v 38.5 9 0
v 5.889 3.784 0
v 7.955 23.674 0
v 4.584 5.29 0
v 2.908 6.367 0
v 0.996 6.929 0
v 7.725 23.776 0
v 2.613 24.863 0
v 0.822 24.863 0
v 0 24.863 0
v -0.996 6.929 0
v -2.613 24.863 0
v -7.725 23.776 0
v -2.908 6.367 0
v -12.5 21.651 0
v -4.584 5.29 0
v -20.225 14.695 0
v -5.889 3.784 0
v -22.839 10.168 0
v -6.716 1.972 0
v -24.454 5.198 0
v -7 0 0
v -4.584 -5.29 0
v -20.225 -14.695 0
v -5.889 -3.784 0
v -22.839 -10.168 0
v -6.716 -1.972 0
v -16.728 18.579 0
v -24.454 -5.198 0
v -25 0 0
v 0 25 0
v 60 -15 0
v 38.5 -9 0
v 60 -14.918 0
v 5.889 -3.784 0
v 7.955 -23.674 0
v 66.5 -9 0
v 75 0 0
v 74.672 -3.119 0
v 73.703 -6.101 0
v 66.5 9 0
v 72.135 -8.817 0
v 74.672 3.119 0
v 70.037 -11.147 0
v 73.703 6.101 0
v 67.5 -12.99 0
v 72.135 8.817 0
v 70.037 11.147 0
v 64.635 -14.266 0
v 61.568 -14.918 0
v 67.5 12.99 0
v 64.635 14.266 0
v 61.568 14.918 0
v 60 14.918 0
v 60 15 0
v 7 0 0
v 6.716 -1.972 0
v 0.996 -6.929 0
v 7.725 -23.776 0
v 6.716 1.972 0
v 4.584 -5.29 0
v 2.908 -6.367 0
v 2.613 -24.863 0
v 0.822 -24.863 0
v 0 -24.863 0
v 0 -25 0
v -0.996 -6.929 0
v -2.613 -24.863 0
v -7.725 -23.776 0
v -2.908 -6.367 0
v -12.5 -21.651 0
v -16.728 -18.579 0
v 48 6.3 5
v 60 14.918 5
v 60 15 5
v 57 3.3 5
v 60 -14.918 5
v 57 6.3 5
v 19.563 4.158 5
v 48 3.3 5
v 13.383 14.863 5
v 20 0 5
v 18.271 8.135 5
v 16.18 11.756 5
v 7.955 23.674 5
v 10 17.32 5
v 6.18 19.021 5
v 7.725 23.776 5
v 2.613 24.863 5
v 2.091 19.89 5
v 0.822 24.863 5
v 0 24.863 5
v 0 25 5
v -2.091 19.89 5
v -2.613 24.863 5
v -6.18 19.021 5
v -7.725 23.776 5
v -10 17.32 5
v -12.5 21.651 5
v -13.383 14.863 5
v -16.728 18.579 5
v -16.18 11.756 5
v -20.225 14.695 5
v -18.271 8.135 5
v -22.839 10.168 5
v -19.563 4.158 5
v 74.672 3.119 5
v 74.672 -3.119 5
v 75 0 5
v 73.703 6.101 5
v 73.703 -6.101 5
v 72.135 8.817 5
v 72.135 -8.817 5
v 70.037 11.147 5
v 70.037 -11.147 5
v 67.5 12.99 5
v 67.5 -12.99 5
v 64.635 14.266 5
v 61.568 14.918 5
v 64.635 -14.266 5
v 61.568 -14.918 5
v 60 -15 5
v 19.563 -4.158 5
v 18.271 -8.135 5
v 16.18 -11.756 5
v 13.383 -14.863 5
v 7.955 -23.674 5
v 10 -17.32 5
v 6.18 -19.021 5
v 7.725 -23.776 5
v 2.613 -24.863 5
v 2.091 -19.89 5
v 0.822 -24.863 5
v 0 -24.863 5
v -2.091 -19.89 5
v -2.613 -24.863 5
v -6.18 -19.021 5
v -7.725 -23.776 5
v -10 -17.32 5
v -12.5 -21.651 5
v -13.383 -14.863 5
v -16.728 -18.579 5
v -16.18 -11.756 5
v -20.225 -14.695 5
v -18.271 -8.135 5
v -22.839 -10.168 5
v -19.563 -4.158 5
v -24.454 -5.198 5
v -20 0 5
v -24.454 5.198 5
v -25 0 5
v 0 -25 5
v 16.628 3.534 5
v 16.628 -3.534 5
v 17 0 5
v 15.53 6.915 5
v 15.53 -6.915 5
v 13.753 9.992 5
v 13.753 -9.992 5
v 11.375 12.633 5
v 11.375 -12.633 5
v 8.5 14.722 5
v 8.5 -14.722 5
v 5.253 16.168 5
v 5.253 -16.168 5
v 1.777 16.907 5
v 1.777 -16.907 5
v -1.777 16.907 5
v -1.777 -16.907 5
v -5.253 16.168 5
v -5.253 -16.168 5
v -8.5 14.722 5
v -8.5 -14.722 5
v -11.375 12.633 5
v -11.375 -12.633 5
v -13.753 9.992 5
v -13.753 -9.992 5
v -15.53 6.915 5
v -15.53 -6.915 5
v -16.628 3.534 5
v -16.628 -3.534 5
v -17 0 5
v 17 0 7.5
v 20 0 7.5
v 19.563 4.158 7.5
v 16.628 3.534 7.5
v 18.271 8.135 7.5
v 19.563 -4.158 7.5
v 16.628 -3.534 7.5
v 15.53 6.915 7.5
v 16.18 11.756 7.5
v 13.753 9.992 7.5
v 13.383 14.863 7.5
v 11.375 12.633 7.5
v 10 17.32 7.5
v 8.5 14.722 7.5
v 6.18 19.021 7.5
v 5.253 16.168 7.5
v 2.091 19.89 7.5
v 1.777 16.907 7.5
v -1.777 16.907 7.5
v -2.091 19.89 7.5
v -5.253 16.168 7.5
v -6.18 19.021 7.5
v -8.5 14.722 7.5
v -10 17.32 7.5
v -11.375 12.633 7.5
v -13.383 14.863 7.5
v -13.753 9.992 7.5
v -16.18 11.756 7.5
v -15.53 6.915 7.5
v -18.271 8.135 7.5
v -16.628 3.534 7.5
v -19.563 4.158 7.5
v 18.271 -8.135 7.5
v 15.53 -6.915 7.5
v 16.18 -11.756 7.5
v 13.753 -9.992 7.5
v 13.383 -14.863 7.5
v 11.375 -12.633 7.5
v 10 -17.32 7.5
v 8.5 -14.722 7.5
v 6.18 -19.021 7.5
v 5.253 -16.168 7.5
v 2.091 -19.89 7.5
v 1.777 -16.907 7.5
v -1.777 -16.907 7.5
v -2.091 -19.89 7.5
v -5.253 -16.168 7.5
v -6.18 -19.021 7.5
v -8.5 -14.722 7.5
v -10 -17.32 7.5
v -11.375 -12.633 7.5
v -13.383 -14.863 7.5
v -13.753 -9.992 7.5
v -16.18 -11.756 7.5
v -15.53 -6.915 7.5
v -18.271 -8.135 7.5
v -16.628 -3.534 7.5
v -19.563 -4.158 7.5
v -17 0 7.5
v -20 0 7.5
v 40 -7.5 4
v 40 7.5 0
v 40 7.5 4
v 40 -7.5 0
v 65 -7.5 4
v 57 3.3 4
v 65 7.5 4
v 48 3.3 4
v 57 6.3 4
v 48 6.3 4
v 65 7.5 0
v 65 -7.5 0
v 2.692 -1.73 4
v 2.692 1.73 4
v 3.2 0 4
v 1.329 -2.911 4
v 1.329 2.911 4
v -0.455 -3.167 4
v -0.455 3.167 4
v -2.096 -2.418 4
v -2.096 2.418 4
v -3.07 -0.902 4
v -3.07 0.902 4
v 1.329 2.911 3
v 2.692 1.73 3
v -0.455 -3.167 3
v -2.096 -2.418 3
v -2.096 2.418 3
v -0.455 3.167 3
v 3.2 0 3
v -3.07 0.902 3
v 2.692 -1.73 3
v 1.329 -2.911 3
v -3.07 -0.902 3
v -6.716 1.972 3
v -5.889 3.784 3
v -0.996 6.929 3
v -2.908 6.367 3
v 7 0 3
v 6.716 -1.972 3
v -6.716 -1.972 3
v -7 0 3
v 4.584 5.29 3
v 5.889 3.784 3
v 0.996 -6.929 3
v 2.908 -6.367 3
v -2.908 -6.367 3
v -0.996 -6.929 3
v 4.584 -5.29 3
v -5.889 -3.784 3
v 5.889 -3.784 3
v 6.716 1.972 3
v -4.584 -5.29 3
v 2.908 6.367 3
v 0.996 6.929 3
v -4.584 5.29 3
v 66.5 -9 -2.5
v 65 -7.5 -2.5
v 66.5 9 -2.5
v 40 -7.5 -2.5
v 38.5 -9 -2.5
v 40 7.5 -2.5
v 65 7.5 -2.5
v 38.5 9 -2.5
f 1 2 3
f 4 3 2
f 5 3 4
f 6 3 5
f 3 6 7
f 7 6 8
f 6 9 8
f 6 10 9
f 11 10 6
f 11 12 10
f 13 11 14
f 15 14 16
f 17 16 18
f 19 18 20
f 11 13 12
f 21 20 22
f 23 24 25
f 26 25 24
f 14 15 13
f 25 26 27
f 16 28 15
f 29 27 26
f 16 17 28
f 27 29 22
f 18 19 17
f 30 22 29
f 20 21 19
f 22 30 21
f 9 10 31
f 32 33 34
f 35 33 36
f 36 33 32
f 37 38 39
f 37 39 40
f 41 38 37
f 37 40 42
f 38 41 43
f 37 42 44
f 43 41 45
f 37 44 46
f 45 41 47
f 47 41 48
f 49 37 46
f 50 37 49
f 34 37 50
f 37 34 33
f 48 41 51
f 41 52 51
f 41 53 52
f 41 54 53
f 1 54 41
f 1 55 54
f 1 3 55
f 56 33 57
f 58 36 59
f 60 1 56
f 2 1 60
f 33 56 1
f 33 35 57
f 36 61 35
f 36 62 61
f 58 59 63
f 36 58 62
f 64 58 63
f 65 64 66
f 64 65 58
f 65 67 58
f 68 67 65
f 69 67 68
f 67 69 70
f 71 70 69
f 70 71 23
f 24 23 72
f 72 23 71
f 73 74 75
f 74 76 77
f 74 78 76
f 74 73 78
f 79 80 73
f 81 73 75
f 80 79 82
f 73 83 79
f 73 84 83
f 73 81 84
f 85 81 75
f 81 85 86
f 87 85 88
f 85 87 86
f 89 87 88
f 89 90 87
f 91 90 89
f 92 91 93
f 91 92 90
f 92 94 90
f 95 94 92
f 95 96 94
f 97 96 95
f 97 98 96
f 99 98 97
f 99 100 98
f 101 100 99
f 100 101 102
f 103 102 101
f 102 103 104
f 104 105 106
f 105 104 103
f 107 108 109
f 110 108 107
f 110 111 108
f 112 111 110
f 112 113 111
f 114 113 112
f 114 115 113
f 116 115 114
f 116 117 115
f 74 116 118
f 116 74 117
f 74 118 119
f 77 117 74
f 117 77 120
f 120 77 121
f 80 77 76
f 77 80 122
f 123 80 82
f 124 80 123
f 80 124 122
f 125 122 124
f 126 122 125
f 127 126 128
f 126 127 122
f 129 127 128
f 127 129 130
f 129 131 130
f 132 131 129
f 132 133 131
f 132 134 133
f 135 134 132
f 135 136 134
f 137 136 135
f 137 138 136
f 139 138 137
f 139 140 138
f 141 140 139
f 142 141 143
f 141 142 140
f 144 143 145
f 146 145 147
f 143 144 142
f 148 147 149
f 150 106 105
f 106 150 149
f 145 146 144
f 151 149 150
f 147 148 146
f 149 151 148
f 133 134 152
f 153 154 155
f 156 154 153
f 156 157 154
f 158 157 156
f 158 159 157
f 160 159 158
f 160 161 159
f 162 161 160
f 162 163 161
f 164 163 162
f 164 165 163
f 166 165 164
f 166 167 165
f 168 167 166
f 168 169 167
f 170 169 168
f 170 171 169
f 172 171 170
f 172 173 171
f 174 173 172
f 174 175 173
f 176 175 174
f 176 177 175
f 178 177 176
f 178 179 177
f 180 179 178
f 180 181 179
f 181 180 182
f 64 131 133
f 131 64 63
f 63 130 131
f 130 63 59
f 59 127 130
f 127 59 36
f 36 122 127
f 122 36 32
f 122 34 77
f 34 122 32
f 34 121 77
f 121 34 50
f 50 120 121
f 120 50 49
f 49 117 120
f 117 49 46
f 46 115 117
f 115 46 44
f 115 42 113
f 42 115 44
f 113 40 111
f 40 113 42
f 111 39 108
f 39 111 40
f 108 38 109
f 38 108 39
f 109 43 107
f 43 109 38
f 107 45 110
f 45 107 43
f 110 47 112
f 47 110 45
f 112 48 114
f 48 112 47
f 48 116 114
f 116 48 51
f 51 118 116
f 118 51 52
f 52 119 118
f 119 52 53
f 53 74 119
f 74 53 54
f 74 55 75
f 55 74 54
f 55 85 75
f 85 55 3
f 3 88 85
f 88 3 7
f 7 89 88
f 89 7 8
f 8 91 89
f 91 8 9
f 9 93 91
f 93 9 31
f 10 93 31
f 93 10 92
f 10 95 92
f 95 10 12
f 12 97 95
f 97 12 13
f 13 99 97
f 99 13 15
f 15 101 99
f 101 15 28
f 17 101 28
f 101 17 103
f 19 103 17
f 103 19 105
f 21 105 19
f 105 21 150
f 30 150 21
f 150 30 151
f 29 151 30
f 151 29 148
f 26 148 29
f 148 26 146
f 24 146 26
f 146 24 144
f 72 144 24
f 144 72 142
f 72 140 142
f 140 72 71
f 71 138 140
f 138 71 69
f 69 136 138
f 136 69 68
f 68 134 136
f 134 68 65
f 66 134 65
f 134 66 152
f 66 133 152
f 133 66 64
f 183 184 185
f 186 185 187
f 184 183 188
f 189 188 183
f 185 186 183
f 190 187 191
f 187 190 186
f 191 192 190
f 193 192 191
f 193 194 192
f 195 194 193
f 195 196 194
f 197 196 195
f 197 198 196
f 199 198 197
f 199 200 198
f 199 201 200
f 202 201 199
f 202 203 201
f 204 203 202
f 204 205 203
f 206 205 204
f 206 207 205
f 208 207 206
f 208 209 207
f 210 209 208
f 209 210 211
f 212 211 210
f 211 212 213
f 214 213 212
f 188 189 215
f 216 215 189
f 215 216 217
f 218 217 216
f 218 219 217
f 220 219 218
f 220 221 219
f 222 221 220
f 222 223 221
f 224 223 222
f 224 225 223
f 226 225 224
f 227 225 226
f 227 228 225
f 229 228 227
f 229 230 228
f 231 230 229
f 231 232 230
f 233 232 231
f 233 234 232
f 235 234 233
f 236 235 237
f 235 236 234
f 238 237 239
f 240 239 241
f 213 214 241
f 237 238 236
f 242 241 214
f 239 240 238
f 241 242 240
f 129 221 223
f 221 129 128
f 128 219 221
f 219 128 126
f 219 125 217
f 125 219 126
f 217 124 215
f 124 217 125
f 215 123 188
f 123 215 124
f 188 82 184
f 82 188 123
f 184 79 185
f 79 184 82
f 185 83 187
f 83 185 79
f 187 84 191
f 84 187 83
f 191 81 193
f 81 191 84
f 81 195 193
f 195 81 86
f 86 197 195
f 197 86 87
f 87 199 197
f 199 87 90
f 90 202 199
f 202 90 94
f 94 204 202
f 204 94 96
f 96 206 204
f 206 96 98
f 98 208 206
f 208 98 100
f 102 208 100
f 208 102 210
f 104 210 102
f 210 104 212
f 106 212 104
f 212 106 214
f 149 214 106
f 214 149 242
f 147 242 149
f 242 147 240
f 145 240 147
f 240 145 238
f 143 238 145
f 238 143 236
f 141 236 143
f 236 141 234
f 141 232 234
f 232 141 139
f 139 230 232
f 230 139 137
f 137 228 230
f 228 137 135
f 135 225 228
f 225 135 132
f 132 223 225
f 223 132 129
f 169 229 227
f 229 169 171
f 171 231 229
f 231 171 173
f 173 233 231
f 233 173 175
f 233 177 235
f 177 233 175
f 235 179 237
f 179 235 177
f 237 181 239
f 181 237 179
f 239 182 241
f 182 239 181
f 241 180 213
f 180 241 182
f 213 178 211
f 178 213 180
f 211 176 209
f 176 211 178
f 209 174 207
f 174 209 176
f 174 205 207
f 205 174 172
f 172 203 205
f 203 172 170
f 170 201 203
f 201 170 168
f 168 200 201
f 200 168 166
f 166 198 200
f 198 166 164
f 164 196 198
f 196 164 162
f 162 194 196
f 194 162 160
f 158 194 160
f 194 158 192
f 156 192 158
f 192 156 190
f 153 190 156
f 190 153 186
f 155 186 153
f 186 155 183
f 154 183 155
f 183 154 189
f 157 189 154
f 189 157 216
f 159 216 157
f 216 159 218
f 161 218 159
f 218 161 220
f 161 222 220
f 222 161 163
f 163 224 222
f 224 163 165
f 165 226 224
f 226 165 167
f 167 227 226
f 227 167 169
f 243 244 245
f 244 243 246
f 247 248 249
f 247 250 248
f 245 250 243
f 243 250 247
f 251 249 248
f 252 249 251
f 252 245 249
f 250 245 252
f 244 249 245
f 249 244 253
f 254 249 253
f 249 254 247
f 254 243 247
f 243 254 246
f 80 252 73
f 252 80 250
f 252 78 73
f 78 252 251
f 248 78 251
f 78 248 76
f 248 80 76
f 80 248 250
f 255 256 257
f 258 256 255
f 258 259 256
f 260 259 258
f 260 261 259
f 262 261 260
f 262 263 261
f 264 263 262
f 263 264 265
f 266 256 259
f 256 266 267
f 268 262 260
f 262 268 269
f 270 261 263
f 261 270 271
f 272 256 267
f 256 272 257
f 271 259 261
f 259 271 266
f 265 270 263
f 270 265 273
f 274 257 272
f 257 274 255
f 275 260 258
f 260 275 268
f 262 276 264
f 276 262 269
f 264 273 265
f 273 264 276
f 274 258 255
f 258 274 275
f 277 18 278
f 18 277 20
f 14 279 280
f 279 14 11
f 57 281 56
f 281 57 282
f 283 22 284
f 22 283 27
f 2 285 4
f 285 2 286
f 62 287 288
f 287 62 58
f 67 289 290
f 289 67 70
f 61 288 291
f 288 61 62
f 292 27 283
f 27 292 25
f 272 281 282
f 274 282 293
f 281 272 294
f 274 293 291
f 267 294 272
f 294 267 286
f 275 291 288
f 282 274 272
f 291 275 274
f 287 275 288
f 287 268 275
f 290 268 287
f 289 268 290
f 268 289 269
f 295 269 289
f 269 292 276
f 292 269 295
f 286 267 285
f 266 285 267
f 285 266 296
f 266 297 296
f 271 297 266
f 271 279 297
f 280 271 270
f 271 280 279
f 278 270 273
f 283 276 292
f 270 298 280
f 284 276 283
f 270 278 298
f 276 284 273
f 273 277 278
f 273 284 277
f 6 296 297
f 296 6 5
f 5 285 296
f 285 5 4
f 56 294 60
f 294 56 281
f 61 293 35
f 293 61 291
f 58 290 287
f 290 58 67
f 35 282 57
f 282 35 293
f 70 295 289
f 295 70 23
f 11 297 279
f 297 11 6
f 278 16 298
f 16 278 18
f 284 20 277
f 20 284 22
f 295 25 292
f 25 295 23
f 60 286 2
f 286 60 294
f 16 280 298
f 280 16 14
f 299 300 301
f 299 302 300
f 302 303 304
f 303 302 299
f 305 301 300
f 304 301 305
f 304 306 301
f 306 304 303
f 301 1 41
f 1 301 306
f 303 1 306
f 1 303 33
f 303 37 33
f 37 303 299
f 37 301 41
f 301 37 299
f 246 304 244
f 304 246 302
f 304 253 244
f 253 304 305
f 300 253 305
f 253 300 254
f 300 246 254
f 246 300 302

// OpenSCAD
union(){
    difference(){
        union(){
            // 腕のベース部分
            color([0,0.5,0])
            linear_extrude(5){
                circle(25);
                translate([60,0,0]){
                    circle(15);
                }
                polygon([[0,25],[0,-25],[60,-15],[60,15]]);
            }
            // 接続部分の飛び出た輪
            color([0.8,0,0])
            translate([0,0,5]){
                linear_extrude(2.5){
                    difference() {
                        circle(20);
                        circle(17);
                    }
                }
            }
        }
        // 磁石( 約 6 mm )
        linear_extrude(4){
            circle(3.2);
        }
        // 磁石穴の余分な空き
        linear_extrude(3){
            circle(7);
        }
        // M5StickC の穴
        union(){
            translate([40,-7.5,0]){
                linear_extrude(4){
                    square([25,15]);
                }
            }
            translate([48,3.3,4]){
                linear_extrude(1){
                    square([9,3]);
                }
            }
        }
    }
    // M5StickCを支える枠
    color([0,0,0.5])
    translate([38.5,-9,-2.5]){
        linear_extrude(2.5){
            difference(){
                square([28,18]);
                translate([1.5,1.5,0]){
                    square([25,15]);
                }
            }
        }
    }
}
